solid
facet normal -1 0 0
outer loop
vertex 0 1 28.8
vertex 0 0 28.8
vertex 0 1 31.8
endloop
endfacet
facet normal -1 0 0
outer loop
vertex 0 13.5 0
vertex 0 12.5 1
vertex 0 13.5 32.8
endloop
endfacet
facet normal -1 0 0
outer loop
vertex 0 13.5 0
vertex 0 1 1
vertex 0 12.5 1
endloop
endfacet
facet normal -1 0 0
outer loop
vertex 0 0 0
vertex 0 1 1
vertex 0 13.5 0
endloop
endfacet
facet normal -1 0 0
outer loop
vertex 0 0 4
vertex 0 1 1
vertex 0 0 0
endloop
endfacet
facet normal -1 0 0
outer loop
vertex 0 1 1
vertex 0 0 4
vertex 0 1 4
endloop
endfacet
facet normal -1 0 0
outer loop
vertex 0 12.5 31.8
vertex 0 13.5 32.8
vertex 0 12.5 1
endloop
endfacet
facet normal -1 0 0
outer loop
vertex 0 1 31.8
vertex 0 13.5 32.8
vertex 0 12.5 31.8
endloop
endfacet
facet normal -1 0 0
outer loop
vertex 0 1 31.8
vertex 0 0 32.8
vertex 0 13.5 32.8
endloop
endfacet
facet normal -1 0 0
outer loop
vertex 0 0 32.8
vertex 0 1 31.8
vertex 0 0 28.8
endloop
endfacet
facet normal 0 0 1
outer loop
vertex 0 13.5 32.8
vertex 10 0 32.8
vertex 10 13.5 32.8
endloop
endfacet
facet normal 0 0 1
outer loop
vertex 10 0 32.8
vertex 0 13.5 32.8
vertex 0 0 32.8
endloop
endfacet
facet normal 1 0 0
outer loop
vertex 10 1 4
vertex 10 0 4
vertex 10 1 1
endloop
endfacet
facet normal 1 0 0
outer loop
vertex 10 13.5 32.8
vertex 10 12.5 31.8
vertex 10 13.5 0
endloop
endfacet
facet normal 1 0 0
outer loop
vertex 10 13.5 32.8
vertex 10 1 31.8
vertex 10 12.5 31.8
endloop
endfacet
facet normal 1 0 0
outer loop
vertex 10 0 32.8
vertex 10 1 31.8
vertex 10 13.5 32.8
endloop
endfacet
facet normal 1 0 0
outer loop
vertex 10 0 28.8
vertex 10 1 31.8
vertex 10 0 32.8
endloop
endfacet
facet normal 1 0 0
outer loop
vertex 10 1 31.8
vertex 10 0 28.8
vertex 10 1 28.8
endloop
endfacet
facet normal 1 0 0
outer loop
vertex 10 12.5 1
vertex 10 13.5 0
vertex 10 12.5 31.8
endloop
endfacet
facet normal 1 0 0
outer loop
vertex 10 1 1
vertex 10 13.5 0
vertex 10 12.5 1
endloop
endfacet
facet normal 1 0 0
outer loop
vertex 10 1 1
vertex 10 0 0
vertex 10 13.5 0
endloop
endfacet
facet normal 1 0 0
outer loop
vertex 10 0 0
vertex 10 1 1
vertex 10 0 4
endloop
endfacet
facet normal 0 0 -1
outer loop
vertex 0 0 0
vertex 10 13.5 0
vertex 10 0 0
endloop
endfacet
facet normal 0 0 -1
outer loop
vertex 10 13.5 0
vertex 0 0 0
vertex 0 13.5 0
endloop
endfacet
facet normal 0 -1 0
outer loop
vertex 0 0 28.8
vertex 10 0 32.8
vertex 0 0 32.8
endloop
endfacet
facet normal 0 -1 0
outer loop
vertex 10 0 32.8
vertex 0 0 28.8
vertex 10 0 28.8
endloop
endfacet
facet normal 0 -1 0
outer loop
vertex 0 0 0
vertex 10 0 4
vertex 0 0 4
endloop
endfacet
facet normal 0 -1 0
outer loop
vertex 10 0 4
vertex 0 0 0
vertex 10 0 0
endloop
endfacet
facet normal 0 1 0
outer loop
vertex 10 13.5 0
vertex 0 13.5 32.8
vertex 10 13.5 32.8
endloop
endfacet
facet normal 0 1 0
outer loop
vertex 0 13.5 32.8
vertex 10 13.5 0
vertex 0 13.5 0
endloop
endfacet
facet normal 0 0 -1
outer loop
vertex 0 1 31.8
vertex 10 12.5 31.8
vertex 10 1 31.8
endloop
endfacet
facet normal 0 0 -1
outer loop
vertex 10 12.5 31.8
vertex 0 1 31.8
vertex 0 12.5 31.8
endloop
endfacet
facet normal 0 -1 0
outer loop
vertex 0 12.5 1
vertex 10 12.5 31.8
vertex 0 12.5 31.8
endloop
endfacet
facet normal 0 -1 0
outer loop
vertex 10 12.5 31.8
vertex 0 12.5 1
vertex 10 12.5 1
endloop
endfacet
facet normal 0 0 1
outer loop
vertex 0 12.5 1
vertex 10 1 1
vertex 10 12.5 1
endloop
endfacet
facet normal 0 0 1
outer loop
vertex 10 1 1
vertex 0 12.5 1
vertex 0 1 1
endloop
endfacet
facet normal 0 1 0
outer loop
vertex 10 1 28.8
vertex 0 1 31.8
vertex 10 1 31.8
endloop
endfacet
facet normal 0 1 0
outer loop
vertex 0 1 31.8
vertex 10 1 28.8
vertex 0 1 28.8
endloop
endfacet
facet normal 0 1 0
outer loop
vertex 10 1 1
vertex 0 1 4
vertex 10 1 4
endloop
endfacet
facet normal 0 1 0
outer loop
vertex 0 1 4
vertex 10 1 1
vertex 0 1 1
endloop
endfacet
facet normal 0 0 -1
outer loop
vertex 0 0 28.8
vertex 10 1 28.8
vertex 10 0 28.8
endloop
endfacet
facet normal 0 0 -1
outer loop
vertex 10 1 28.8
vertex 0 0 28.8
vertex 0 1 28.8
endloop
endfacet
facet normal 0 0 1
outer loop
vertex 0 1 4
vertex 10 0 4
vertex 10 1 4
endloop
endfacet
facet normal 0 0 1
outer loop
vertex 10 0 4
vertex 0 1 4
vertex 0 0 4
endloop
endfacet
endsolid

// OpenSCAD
width = 10;
shell = 1;

wwidth  = 11.5;
wlip    = 3;
wheight = 30.8;

difference(){
    cube([width, wwidth + (2*shell), wheight + (2*shell)]);
    
    translate([0,shell,shell]){
        cube([width, wwidth, wheight]);
    }
    
    translate([0,0,wlip+shell]){
        cube([width, wwidth, wheight - (2*wlip)]);
    }
}
